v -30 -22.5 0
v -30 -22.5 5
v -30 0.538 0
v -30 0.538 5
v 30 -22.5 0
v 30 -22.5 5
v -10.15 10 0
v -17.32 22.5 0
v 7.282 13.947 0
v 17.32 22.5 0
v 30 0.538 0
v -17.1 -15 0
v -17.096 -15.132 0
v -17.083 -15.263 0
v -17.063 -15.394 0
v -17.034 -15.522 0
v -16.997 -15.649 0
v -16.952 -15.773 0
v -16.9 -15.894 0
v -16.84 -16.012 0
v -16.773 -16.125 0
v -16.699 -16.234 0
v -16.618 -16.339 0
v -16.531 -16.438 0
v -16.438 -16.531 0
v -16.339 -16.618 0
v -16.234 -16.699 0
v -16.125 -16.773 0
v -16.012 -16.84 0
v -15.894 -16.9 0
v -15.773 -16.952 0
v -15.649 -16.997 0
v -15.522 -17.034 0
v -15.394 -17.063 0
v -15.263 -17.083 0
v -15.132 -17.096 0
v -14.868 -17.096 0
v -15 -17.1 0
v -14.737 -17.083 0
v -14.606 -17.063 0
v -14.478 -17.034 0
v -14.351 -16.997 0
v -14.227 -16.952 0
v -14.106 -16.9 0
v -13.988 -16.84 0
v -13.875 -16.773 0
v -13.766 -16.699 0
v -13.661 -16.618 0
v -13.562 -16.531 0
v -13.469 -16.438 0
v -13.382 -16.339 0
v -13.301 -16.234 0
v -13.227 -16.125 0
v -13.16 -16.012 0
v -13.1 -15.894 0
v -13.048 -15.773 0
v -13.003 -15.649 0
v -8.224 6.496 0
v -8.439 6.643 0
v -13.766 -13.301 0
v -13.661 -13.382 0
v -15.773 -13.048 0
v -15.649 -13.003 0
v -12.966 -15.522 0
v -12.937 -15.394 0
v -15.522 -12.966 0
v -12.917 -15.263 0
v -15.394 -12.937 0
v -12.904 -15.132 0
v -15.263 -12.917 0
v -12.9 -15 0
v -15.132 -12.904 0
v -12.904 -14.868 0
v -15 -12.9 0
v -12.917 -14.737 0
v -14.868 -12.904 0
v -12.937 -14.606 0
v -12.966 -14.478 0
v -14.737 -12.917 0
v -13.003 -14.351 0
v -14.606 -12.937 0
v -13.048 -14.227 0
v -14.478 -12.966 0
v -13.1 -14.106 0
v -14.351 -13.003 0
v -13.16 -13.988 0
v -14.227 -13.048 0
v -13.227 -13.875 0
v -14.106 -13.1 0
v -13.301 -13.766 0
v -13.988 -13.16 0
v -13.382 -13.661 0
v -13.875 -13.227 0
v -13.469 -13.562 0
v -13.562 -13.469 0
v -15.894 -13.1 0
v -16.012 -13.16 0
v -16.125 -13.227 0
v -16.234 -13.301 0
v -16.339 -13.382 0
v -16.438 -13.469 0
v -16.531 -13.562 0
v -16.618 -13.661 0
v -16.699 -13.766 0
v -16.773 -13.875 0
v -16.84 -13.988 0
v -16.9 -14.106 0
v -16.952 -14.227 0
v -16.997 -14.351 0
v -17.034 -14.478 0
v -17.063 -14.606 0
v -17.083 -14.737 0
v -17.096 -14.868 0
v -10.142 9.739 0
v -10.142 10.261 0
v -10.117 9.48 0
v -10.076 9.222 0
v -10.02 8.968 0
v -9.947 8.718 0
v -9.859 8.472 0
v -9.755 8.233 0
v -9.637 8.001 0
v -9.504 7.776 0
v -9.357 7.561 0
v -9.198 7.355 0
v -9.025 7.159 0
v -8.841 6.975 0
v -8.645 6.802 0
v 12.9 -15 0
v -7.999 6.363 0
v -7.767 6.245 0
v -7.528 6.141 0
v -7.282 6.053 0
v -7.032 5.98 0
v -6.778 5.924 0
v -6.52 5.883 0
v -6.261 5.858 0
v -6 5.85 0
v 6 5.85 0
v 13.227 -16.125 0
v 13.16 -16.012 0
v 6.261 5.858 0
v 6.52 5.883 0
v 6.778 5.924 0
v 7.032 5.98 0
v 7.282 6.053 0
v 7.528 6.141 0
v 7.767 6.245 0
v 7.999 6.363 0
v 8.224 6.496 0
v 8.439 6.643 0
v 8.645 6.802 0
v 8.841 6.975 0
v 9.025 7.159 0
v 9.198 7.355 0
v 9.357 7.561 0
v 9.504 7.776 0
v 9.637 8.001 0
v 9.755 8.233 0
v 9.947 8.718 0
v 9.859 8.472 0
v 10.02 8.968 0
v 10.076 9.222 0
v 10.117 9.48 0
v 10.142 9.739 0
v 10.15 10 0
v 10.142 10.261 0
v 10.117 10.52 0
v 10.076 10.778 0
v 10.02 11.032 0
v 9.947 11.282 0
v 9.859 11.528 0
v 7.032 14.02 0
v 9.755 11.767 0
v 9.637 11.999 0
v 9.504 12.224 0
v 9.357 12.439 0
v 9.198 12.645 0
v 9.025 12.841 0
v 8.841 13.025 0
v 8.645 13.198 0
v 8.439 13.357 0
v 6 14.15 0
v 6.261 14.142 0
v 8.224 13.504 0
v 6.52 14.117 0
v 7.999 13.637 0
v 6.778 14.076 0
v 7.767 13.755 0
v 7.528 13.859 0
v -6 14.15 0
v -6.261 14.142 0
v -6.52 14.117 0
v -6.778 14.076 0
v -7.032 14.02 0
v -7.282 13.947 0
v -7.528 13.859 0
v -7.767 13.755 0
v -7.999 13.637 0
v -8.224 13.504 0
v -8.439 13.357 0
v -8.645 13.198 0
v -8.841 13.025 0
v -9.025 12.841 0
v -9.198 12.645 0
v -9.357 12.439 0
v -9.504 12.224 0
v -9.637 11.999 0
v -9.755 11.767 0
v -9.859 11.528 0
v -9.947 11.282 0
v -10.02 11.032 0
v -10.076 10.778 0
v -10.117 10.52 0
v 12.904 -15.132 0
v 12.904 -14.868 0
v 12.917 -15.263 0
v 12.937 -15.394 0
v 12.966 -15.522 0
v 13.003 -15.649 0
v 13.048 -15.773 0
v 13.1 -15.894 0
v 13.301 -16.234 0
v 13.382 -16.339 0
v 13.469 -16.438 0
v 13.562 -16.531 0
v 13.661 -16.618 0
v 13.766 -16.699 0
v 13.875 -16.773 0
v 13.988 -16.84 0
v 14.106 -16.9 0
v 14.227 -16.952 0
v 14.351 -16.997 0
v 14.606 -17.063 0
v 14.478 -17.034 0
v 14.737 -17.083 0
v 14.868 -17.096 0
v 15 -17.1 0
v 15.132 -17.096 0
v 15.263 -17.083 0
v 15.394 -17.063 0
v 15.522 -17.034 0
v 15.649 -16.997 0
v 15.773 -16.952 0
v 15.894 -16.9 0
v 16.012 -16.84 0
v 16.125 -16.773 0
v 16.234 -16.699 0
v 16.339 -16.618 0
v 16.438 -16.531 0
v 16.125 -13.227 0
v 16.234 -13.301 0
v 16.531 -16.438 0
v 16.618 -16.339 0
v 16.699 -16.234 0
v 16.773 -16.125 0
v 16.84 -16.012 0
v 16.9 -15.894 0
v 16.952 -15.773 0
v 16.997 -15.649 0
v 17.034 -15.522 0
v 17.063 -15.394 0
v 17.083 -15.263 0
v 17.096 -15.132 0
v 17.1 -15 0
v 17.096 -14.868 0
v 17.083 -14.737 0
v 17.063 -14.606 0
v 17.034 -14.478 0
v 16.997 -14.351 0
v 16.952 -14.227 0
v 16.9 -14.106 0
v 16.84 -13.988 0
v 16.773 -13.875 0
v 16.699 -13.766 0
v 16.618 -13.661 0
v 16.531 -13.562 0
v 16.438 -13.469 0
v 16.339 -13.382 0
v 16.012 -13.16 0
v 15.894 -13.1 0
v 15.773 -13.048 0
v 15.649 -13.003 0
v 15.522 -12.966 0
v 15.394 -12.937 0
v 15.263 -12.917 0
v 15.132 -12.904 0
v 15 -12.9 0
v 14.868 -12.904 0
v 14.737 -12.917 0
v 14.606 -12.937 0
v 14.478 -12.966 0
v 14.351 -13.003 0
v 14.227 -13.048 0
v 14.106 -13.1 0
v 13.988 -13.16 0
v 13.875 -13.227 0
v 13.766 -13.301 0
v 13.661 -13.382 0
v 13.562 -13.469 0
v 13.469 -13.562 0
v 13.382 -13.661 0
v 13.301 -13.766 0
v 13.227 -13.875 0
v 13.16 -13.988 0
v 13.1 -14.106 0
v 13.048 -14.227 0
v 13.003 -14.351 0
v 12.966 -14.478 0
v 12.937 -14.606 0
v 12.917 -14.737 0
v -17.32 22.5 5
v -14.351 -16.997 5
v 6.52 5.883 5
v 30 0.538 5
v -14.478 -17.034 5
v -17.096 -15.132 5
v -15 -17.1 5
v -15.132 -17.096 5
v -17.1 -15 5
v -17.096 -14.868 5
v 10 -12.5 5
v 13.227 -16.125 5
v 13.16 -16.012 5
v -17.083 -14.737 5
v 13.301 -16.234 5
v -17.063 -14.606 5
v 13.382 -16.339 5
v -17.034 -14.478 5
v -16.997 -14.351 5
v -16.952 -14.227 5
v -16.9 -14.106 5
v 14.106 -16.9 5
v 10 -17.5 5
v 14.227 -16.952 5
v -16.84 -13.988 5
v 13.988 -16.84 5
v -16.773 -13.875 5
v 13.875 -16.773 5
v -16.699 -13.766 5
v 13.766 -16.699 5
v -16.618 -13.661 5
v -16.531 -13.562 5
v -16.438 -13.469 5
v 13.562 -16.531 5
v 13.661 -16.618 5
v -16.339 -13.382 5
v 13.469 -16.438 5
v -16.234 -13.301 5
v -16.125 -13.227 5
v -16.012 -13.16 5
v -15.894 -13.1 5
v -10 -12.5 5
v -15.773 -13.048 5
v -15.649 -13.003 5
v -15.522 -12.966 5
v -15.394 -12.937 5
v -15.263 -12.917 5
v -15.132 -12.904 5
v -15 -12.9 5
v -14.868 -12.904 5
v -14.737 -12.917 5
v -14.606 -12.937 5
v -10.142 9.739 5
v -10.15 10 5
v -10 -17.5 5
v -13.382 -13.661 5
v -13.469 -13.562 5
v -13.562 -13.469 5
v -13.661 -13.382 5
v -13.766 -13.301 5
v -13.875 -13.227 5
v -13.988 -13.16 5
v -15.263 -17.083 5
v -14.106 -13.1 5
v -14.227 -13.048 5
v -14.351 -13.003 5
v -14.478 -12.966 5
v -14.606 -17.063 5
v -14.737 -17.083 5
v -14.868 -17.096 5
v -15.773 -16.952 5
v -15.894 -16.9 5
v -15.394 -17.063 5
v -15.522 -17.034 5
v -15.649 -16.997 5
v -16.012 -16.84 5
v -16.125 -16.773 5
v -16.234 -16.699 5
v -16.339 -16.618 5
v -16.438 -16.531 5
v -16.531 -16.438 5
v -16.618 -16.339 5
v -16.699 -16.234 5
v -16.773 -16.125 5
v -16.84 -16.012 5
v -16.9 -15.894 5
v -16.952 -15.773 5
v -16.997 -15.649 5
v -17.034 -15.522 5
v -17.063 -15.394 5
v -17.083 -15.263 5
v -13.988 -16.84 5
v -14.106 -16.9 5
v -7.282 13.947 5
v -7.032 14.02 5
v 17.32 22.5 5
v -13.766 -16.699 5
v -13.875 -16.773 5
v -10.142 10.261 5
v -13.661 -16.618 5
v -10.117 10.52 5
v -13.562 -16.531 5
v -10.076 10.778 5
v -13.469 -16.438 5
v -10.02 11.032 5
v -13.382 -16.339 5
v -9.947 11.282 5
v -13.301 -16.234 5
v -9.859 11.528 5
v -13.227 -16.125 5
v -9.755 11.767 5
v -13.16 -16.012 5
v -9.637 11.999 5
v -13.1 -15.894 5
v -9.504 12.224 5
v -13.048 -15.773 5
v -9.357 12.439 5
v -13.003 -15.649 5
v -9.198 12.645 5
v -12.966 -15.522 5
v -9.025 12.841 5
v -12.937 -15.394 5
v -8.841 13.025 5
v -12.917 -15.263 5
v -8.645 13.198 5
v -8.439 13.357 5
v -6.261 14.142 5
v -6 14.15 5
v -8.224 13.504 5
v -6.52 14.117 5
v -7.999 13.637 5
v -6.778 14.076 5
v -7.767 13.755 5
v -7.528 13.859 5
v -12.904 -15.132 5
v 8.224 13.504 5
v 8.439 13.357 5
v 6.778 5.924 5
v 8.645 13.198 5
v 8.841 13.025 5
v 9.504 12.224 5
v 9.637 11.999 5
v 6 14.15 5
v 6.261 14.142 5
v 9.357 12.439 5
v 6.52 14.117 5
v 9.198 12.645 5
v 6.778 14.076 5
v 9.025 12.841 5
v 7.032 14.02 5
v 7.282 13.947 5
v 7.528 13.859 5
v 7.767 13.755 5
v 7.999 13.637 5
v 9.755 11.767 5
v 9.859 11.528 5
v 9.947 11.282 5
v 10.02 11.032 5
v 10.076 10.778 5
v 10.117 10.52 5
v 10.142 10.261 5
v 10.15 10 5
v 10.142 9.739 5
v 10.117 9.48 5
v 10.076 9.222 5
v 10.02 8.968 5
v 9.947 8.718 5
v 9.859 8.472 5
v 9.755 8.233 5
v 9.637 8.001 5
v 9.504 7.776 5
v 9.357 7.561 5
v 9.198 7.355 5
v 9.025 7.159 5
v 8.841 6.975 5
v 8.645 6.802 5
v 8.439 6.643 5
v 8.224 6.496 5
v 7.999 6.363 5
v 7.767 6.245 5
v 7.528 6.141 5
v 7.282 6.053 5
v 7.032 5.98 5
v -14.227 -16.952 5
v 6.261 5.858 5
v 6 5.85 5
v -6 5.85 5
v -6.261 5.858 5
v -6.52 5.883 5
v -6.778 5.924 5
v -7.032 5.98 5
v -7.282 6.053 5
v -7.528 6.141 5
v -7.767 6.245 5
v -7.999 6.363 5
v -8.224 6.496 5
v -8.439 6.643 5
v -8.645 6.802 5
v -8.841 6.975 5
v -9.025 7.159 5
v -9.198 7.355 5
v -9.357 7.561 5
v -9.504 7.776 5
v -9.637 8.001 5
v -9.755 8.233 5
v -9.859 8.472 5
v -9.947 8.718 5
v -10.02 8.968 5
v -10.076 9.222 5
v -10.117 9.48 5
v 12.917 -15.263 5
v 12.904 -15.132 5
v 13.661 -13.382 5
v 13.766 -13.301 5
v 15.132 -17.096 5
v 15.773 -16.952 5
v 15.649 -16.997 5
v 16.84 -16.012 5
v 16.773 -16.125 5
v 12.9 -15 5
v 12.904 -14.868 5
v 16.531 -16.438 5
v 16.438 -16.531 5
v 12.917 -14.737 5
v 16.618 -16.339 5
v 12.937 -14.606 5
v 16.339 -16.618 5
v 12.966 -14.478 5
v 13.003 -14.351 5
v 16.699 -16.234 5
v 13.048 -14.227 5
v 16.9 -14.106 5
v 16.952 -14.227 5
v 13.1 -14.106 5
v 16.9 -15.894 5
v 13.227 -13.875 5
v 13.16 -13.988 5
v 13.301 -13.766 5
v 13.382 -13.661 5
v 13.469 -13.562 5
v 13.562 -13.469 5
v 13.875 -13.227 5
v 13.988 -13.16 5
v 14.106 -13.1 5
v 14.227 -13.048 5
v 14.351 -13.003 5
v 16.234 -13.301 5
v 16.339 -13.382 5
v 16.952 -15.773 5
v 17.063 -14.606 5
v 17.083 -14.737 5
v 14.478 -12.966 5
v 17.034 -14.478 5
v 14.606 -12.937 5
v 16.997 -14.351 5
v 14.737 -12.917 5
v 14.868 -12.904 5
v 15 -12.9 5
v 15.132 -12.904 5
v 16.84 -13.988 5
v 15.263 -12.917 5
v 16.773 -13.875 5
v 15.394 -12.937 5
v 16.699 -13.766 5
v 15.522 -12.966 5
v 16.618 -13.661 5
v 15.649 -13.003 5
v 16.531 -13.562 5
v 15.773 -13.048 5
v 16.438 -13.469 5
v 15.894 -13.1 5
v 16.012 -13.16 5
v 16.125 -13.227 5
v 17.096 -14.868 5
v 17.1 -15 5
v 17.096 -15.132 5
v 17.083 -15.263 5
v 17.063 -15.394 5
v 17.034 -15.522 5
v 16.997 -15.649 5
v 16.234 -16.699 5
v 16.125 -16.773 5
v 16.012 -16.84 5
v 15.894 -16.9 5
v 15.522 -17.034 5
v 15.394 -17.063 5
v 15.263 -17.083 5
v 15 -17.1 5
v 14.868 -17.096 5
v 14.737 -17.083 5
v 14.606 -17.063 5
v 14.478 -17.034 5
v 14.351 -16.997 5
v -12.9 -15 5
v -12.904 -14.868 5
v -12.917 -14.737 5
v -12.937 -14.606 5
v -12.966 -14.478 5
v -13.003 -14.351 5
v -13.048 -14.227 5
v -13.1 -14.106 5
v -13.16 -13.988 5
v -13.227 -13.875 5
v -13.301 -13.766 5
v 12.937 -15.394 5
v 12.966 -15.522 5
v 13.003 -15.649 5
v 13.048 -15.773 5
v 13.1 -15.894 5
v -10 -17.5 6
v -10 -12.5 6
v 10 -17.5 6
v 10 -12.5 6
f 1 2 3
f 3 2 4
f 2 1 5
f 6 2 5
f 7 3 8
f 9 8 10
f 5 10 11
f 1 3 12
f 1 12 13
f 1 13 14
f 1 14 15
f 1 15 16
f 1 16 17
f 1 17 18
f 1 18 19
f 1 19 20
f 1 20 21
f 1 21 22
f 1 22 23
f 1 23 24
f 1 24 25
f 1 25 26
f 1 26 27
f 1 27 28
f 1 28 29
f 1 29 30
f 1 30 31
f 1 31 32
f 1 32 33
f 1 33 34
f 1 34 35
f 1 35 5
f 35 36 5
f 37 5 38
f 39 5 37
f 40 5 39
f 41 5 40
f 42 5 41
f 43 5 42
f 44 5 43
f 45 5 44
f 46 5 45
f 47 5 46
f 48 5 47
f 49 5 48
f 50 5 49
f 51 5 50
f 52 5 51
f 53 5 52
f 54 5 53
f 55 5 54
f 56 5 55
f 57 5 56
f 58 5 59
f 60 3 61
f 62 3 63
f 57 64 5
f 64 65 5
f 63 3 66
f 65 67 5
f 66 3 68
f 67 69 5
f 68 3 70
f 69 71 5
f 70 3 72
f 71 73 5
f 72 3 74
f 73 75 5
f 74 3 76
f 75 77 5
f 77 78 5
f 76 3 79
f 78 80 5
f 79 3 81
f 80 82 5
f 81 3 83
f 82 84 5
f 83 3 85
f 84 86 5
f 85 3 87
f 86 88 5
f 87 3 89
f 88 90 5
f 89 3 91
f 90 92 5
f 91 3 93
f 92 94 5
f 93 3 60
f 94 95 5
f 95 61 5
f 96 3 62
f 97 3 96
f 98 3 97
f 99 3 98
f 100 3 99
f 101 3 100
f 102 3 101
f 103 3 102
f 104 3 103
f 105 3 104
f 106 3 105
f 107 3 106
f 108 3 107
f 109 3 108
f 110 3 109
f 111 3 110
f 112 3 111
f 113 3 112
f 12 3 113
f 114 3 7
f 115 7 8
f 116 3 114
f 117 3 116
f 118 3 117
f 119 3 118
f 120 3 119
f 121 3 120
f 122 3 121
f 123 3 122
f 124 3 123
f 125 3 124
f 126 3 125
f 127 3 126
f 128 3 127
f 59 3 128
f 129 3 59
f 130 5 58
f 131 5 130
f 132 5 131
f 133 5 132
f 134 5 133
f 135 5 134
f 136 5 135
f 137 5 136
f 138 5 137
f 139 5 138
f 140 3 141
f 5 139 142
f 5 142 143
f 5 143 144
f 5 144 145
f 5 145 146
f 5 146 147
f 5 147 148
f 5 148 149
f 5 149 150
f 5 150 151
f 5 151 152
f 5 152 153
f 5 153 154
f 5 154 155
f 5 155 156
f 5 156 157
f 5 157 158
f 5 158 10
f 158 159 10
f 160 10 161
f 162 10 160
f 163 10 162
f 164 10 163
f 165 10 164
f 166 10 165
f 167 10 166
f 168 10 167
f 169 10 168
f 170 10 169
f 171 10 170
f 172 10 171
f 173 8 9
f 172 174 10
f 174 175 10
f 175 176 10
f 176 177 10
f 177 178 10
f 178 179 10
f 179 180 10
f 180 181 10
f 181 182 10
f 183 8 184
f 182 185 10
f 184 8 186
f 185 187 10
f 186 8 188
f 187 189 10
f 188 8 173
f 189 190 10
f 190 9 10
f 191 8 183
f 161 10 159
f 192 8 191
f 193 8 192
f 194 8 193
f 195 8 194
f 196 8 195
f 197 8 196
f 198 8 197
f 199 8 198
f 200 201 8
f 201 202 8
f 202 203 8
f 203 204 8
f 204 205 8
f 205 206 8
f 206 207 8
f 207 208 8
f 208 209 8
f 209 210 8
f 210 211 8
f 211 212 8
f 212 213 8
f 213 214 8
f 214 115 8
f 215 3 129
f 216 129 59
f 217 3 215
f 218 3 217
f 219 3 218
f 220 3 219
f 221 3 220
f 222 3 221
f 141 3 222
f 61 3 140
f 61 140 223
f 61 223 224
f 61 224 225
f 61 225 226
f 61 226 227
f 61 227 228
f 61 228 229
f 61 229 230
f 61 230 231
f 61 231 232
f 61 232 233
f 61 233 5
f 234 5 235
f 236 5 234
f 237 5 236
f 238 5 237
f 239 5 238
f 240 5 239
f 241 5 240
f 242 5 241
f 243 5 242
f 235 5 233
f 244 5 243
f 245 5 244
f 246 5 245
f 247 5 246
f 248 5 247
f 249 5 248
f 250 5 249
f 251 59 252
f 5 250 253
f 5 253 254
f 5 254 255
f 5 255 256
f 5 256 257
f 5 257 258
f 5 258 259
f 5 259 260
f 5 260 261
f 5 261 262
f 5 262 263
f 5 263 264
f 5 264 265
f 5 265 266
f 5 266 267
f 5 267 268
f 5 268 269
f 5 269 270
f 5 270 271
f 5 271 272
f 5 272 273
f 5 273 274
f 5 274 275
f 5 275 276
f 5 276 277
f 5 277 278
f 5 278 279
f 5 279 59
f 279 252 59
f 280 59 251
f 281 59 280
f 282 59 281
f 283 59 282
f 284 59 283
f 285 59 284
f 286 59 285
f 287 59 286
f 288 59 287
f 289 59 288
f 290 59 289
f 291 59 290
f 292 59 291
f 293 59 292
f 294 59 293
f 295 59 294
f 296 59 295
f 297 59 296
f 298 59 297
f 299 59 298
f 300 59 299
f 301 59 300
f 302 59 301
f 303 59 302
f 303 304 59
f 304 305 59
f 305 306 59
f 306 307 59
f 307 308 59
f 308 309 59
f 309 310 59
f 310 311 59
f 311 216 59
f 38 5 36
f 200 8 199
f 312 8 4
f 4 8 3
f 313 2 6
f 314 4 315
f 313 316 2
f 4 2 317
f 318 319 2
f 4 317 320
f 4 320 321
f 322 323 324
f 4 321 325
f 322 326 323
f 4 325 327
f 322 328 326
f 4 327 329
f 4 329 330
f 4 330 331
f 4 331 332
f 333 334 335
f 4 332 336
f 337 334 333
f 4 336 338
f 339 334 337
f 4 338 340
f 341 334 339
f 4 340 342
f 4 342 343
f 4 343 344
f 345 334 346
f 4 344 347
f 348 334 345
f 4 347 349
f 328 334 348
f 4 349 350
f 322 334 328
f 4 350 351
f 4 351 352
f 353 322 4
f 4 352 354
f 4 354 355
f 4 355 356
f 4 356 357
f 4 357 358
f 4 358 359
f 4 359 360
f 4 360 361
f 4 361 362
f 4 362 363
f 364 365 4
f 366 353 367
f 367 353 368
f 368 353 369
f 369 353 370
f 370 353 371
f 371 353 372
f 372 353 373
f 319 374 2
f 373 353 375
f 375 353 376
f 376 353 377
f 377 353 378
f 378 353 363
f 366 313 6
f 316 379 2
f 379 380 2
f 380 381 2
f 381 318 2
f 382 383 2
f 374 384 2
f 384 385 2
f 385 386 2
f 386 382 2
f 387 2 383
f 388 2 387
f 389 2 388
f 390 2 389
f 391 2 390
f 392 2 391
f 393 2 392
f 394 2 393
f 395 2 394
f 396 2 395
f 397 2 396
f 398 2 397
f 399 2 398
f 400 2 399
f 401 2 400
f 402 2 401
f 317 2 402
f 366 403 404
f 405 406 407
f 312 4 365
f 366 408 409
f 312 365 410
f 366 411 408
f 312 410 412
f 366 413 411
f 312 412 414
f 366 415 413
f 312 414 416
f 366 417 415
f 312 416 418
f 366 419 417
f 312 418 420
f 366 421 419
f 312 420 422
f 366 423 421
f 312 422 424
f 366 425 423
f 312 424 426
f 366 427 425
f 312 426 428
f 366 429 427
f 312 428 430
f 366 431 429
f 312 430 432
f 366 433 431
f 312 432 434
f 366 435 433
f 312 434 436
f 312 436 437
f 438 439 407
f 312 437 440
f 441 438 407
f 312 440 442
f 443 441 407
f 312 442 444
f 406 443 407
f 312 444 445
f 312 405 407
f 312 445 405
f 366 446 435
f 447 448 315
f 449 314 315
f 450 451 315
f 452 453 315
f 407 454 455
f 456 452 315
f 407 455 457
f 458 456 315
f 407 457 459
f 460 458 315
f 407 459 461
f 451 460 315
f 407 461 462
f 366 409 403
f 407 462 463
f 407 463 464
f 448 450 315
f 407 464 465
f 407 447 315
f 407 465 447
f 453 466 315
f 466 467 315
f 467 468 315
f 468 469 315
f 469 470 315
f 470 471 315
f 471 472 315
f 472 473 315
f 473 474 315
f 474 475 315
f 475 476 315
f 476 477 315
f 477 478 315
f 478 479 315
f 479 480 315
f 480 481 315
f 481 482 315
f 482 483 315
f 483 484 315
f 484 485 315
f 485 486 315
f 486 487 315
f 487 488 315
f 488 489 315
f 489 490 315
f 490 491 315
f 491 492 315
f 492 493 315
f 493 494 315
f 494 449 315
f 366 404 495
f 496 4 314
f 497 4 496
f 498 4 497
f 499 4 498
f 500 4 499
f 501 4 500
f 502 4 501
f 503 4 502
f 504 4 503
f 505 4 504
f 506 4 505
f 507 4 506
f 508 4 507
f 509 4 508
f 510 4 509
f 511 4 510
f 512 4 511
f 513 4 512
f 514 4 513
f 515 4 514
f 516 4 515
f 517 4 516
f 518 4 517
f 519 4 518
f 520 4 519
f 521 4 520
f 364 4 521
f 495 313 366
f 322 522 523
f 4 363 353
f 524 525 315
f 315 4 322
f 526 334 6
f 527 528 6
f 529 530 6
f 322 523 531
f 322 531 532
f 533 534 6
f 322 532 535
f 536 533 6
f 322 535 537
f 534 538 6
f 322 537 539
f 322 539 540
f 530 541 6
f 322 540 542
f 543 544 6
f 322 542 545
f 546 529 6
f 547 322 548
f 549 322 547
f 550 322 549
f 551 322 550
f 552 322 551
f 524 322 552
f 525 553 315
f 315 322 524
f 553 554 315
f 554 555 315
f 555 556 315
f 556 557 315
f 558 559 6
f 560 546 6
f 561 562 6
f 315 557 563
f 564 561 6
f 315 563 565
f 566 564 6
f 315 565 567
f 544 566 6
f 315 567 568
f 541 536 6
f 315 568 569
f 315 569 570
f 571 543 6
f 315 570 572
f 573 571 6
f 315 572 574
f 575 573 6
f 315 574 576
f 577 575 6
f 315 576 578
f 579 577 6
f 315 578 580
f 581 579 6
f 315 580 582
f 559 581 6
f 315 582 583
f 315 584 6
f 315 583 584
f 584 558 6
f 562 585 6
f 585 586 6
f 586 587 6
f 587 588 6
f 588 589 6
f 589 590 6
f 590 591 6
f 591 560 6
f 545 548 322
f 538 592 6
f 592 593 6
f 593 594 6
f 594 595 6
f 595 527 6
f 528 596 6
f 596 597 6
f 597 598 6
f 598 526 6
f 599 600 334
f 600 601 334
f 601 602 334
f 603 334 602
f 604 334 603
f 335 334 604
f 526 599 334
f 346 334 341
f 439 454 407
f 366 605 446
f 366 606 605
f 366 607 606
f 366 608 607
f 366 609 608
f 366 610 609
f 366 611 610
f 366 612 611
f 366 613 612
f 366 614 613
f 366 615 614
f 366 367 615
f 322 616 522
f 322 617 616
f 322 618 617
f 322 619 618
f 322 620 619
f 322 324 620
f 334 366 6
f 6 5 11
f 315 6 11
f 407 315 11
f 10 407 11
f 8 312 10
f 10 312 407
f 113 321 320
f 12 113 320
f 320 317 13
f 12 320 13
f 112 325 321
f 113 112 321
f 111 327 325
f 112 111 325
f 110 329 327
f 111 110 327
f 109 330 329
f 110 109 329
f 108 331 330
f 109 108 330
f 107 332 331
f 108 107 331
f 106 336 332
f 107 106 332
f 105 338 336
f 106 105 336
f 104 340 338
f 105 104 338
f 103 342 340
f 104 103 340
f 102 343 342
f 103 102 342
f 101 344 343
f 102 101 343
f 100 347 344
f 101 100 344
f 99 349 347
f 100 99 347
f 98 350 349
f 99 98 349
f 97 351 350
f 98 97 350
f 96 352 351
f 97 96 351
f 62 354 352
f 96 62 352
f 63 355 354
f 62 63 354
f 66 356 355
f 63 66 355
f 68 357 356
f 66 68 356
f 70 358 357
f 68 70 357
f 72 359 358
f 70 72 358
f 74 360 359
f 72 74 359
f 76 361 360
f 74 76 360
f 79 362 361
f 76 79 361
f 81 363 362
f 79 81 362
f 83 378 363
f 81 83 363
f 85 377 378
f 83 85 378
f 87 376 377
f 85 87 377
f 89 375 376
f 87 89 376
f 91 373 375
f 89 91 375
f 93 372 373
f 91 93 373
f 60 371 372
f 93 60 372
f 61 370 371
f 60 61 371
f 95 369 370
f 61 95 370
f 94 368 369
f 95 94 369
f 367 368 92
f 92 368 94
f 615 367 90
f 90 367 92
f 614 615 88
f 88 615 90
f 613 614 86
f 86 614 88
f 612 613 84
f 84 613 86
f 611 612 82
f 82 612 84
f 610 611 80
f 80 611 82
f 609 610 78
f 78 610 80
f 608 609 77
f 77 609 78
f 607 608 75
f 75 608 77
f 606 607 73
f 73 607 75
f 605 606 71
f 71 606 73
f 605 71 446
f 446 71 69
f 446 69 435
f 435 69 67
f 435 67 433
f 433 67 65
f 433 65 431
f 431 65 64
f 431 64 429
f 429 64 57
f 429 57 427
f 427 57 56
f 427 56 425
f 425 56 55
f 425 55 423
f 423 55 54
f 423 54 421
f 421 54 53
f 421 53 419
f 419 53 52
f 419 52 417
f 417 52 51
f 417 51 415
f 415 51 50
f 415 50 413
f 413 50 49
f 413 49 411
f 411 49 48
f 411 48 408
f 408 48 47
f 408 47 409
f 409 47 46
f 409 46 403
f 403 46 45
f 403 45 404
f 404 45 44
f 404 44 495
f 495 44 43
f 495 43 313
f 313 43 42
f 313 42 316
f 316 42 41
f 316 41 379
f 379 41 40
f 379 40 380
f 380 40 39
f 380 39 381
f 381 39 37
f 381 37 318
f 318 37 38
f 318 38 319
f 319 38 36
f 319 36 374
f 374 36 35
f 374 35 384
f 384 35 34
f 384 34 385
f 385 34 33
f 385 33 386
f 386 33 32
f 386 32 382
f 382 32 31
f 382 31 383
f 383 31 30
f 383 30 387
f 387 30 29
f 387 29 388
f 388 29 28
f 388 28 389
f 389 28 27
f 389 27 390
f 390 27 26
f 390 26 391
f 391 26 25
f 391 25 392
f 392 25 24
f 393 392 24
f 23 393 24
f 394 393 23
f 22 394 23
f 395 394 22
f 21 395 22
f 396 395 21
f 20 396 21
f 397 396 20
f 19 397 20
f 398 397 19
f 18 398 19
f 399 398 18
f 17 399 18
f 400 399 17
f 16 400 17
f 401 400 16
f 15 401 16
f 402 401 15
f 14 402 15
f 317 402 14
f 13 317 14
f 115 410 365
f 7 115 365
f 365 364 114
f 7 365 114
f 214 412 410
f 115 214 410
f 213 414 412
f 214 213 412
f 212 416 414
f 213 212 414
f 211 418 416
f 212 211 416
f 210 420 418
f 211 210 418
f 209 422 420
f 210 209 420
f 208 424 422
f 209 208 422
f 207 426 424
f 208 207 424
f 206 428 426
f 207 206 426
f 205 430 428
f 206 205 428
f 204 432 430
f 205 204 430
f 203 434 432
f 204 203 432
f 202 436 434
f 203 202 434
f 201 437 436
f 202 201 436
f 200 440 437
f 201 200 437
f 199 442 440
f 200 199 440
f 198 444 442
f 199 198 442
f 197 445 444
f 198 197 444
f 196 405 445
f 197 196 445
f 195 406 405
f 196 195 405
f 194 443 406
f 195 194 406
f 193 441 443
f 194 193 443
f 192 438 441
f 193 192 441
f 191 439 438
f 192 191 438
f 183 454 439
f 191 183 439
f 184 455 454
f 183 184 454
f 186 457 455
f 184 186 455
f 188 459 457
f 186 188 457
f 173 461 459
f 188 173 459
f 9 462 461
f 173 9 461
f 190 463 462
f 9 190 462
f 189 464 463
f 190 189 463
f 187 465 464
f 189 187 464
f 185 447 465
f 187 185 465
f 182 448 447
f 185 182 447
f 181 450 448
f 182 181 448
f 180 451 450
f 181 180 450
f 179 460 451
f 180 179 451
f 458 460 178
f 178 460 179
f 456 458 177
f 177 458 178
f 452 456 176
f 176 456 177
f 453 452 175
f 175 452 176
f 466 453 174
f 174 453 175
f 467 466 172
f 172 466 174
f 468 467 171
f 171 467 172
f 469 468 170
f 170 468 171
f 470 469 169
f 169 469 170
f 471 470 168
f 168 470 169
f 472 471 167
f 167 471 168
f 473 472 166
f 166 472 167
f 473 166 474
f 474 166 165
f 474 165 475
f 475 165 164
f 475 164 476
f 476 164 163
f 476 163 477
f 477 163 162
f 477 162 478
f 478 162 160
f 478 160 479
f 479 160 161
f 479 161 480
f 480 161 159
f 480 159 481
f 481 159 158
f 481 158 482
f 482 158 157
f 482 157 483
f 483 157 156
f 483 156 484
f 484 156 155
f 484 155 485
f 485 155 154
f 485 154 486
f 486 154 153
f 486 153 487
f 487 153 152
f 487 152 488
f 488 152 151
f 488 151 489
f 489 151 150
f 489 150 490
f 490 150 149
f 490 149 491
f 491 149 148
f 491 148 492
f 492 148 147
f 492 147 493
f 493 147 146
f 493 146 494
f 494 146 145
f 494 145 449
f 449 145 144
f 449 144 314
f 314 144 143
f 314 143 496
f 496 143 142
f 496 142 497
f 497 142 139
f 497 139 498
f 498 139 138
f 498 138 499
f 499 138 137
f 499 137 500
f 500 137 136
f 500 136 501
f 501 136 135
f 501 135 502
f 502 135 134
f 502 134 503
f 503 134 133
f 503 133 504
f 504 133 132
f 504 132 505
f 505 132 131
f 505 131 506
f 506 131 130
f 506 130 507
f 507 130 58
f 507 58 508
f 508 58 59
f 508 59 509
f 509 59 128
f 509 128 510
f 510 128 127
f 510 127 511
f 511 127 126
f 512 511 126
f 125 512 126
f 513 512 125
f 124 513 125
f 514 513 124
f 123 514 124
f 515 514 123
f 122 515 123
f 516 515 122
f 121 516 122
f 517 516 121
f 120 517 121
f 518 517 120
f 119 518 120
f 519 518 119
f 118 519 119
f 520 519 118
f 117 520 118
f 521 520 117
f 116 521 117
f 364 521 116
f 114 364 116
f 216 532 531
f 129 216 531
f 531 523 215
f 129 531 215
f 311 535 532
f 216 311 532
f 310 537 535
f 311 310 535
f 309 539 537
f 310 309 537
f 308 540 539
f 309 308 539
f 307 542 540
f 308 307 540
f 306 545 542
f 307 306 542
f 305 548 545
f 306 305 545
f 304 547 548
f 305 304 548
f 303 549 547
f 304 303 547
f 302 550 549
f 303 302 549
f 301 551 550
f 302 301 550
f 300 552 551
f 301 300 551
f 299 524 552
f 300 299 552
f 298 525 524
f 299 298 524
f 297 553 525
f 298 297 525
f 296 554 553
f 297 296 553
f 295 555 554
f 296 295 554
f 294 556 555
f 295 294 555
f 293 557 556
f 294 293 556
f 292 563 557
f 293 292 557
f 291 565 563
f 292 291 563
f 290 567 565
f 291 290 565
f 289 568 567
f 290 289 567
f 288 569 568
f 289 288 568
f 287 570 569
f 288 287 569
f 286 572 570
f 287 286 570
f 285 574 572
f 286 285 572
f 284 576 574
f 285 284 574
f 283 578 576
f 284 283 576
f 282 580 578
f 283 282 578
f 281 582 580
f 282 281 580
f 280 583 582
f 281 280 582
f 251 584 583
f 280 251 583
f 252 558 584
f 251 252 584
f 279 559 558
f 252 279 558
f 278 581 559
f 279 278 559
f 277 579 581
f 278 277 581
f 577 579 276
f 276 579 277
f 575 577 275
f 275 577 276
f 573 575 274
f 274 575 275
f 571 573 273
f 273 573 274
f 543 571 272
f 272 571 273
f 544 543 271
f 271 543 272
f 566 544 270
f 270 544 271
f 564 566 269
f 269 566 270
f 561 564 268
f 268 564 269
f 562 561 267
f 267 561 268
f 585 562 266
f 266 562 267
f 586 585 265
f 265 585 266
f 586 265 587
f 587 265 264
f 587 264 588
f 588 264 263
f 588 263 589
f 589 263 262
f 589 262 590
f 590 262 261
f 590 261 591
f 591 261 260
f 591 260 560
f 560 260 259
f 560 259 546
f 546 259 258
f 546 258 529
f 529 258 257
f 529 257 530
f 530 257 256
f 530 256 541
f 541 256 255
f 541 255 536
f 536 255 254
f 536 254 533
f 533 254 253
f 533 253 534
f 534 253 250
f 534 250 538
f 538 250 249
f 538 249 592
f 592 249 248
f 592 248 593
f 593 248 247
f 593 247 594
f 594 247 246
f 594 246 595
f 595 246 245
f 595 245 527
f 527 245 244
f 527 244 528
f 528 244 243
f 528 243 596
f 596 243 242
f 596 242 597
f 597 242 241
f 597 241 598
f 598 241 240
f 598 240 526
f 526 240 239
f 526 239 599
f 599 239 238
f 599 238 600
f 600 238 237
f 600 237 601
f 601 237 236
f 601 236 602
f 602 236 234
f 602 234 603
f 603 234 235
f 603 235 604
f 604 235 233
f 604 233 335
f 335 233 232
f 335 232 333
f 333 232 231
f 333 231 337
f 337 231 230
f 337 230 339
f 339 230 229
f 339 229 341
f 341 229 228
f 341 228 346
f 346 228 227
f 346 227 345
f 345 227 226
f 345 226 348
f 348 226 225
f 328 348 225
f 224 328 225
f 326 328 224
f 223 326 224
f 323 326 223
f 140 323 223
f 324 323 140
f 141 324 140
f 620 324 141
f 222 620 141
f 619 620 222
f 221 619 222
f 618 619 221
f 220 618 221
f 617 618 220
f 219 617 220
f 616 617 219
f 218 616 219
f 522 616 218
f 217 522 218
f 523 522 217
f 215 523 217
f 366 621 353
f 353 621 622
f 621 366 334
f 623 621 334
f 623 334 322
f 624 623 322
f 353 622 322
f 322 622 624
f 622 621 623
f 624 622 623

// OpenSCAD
// file: functions.scad
// PRUSA Mendel  
// Functions used in many files
// GNU GPL v2
// Josef Průša
// josefprusa@me.com
// prusadjs.cz
// http://www.reprap.org/wiki/Prusa_Mendel
// http://github.com/prusajr/PrusaMendel

module nut(d,h,horizontal=true){
cornerdiameter =  (d / 2) / cos (180 / 6);
cylinder(h = h, r = cornerdiameter, $fn = 6);
if(horizontal){
for(i = [1:6]){
	rotate([0,0,60*i]) translate([-cornerdiameter-0.2,0,0]) rotate([0,0,-45]) cube(size = [2,2,h]);
}}
}

// By nophead
module polyhole(d,h) {
    n = max(round(2 * d),3);
    rotate([0,0,180])
        cylinder(h = h, r = (d / 2) / cos (180 / n), $fn = n);
}

module roundcorner(diameter){
	difference(){
		cube(size = [diameter,diameter,99], center = false);
		translate(v = [diameter, diameter, 0]) cylinder(h = 100, r=diameter, center=true);
	}
}
// file: metric.scad
// PRUSA Mendel  
// Default metric sizes
// GNU GPL v2
// Josef Průša
// josefprusa@me.com
// prusadjs.cz
// http://www.reprap.org/wiki/Prusa_Mendel
// http://github.com/prusajr/PrusaMendel

// DONT CHANGE THIS FILE! ALTER VALUES IN CONFIGURATION.SCAD INSTEAD

// RODS

threaded_rod_diameter = 8;
threaded_rod_diameter_horizontal = 8;
smooth_bar_diameter = 8;
smooth_bar_diameter_horizontal = 8;

// Nuts and bolts

m8_diameter = 8;
m8_nut_diameter = 14.5;

m4_diameter = 4;
m4_nut_diameter = 7.5;

m3_diameter = 3;
m3_nut_diameter = 5;

// Bushing holder

bushing_core_diameter = smooth_bar_diameter;
bushing_material_thickness = 1;

// Motors

motor_shaft = 5.1;
// file: configuration.scad
// PRUSA Mendel  
// Configuration file
// GNU GPL v2
// Josef Průša
// josefprusa@me.com
// prusadjs.cz
// http://www.reprap.org/wiki/Prusa_Mendel
// http://github.com/prusajr/PrusaMendel

// PLEASE SELECT ONE OF THE CONFIGURATIONS BELOW
// BY UN-COMMENTING IT

// Uncomment for metric settings
// METRIC METRIC METRIC METRIC METRIC METRIC METRIC METRIC 

include <metric.scad>;

// Uncomment for imperial settings
// IMPERIAL IMPERIAL IMPERIAL IMPERIAL IMPERIAL IMPERIAL IMPERIAL 

//include <sae.scad>;

//thin_wall = 3;
// LM8UU
//linear = false;

// override settings by customizing below
// CUSTOM CUSTOM CUSTOM CUSTOM CUSTOM CUSTOM CUSTOM CUSTOM CUSTOM

threaded_rod_diameter = 8.2;
threaded_rod_diameter_horizontal = 8.2;
smooth_bar_diameter = 8.3;
smooth_bar_diameter_horizontal = 8.3;

// Nuts and bolts

m8_diameter = 8.3;
m8_nut_diameter = 15;

m4_diameter = 4.2;
m4_nut_diameter = 9;

m3_diameter = 3.3;
m3_nut_diameter = 5.8;

///counted stuff
m3_nut_diameter_bigger = ((m3_nut_diameter  / 2) / cos (180 / 6))*2;

// functions 
include <functions.scad>
// main file
// f. beachler
// longevity software d.b.a. terawatt industries

include <configuration.scad>;

$fn = 100;

width = 45;
leadout = 60;
slottabs = 2;					// slot tab depth (2 normal, -1 remove)
pulley_offset = 10;
mnt_screw = m4_diameter;
rod_diameter = m8_diameter;

module z_idler_mount(width, leadout, slottabs, pulley_offset, mnt_screw, rod_diameter) {
	difference() {
	union() {
	difference() {
		translate([-leadout / 2, -width / 2, 0]) cube([leadout, width, 5]);
		// corner cuts
		translate([0, 0, 0]) {
			translate([leadout * cos(30), width / 2, 0]) rotate([0, 0, 30]) cube([leadout, width, 15], center = true);
			translate([-leadout * cos(30), width / 2, 0]) rotate([0, 0, -30]) cube([leadout, width, 15], center = true);
		}
	}
	// slottab
	translate([0, -width / 2 + 15 / 2, 5]) cube([leadout - 40, 5, slottabs], center = true);
	}
		// mnt screws
	translate([leadout / 2 - 15, -width / 2 + 15 / 2, -5]) rotate([0, 0, 0]) cylinder(r = mnt_screw / 2, h = 15);
	translate([-leadout / 2 + 15, -width / 2 + 15 / 2, -5]) rotate([0, 0, 0]) cylinder(r = mnt_screw / 2, h = 15);
	// adjustable idler mount
	translate([0, width - 20, 0]) {
		translate([6, -width / 2 + 15 / 2, -5]) rotate([0, 0, 0]) cylinder(r = rod_diameter / 2, h = 15);
		translate([-6, -width / 2 + 15 / 2, -5]) rotate([0, 0, 0]) cylinder(r = rod_diameter / 2, h = 15);
		translate([-6, -width / 2 + 15 / 2 - rod_diameter / 2, -5]) rotate([0, 0, 0]) cube([12, rod_diameter, 15]);
	}
	}
}

z_idler_mount(width, leadout, slottabs, pulley_offset, mnt_screw, rod_diameter);
